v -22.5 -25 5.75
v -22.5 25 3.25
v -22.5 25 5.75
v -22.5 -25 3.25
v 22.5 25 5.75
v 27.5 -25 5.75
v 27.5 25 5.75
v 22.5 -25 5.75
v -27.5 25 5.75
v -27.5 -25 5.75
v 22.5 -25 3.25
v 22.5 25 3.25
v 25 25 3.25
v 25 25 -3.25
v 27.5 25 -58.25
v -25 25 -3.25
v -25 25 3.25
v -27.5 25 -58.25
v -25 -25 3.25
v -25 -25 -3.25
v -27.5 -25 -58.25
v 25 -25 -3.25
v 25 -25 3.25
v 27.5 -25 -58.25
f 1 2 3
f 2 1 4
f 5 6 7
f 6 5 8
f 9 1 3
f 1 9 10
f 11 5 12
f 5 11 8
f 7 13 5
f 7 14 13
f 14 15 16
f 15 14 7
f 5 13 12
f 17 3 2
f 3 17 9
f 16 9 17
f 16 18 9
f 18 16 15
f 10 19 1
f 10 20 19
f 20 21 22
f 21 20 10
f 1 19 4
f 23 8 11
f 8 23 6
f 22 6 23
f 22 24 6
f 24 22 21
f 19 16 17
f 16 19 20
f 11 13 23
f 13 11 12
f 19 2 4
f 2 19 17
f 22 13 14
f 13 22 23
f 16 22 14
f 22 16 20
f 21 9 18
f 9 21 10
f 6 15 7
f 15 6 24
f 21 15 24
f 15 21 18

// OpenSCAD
height = 6.5;
length = 50;
lip = 5;
thickness = 5;

baseHeight = 50;
baseLength = 50;

standWidth = length / 4;
standDepth = thickness;
standHeight = 50;

difference() {
    cube([length + thickness, length, height + thickness], center = true);

    union() {
        translate([0, 0, height / 2]) {
            cube([length - lip, length, thickness], center = true);
        }
        cube([length, length, height], center = true);
    }
}

/*
translate([0, -((length / 2) - (standDepth / 2)), -((height / 2) + (standHeight / 2) + (thickness / 2))]) {
  cube([standWidth, standDepth, standHeight], center = true);
}

translate([0, 0, -((height / 2) + standHeight + thickness)]) {
    cube([length, length, thickness], center = true);
}
*/

translate([0, 0, -(((height + thickness) /2) + 25)]) {
    color("red")
    // difference() {
        cube([baseLength + thickness, baseLength, baseLength + thickness], center = true);
    // }
}
